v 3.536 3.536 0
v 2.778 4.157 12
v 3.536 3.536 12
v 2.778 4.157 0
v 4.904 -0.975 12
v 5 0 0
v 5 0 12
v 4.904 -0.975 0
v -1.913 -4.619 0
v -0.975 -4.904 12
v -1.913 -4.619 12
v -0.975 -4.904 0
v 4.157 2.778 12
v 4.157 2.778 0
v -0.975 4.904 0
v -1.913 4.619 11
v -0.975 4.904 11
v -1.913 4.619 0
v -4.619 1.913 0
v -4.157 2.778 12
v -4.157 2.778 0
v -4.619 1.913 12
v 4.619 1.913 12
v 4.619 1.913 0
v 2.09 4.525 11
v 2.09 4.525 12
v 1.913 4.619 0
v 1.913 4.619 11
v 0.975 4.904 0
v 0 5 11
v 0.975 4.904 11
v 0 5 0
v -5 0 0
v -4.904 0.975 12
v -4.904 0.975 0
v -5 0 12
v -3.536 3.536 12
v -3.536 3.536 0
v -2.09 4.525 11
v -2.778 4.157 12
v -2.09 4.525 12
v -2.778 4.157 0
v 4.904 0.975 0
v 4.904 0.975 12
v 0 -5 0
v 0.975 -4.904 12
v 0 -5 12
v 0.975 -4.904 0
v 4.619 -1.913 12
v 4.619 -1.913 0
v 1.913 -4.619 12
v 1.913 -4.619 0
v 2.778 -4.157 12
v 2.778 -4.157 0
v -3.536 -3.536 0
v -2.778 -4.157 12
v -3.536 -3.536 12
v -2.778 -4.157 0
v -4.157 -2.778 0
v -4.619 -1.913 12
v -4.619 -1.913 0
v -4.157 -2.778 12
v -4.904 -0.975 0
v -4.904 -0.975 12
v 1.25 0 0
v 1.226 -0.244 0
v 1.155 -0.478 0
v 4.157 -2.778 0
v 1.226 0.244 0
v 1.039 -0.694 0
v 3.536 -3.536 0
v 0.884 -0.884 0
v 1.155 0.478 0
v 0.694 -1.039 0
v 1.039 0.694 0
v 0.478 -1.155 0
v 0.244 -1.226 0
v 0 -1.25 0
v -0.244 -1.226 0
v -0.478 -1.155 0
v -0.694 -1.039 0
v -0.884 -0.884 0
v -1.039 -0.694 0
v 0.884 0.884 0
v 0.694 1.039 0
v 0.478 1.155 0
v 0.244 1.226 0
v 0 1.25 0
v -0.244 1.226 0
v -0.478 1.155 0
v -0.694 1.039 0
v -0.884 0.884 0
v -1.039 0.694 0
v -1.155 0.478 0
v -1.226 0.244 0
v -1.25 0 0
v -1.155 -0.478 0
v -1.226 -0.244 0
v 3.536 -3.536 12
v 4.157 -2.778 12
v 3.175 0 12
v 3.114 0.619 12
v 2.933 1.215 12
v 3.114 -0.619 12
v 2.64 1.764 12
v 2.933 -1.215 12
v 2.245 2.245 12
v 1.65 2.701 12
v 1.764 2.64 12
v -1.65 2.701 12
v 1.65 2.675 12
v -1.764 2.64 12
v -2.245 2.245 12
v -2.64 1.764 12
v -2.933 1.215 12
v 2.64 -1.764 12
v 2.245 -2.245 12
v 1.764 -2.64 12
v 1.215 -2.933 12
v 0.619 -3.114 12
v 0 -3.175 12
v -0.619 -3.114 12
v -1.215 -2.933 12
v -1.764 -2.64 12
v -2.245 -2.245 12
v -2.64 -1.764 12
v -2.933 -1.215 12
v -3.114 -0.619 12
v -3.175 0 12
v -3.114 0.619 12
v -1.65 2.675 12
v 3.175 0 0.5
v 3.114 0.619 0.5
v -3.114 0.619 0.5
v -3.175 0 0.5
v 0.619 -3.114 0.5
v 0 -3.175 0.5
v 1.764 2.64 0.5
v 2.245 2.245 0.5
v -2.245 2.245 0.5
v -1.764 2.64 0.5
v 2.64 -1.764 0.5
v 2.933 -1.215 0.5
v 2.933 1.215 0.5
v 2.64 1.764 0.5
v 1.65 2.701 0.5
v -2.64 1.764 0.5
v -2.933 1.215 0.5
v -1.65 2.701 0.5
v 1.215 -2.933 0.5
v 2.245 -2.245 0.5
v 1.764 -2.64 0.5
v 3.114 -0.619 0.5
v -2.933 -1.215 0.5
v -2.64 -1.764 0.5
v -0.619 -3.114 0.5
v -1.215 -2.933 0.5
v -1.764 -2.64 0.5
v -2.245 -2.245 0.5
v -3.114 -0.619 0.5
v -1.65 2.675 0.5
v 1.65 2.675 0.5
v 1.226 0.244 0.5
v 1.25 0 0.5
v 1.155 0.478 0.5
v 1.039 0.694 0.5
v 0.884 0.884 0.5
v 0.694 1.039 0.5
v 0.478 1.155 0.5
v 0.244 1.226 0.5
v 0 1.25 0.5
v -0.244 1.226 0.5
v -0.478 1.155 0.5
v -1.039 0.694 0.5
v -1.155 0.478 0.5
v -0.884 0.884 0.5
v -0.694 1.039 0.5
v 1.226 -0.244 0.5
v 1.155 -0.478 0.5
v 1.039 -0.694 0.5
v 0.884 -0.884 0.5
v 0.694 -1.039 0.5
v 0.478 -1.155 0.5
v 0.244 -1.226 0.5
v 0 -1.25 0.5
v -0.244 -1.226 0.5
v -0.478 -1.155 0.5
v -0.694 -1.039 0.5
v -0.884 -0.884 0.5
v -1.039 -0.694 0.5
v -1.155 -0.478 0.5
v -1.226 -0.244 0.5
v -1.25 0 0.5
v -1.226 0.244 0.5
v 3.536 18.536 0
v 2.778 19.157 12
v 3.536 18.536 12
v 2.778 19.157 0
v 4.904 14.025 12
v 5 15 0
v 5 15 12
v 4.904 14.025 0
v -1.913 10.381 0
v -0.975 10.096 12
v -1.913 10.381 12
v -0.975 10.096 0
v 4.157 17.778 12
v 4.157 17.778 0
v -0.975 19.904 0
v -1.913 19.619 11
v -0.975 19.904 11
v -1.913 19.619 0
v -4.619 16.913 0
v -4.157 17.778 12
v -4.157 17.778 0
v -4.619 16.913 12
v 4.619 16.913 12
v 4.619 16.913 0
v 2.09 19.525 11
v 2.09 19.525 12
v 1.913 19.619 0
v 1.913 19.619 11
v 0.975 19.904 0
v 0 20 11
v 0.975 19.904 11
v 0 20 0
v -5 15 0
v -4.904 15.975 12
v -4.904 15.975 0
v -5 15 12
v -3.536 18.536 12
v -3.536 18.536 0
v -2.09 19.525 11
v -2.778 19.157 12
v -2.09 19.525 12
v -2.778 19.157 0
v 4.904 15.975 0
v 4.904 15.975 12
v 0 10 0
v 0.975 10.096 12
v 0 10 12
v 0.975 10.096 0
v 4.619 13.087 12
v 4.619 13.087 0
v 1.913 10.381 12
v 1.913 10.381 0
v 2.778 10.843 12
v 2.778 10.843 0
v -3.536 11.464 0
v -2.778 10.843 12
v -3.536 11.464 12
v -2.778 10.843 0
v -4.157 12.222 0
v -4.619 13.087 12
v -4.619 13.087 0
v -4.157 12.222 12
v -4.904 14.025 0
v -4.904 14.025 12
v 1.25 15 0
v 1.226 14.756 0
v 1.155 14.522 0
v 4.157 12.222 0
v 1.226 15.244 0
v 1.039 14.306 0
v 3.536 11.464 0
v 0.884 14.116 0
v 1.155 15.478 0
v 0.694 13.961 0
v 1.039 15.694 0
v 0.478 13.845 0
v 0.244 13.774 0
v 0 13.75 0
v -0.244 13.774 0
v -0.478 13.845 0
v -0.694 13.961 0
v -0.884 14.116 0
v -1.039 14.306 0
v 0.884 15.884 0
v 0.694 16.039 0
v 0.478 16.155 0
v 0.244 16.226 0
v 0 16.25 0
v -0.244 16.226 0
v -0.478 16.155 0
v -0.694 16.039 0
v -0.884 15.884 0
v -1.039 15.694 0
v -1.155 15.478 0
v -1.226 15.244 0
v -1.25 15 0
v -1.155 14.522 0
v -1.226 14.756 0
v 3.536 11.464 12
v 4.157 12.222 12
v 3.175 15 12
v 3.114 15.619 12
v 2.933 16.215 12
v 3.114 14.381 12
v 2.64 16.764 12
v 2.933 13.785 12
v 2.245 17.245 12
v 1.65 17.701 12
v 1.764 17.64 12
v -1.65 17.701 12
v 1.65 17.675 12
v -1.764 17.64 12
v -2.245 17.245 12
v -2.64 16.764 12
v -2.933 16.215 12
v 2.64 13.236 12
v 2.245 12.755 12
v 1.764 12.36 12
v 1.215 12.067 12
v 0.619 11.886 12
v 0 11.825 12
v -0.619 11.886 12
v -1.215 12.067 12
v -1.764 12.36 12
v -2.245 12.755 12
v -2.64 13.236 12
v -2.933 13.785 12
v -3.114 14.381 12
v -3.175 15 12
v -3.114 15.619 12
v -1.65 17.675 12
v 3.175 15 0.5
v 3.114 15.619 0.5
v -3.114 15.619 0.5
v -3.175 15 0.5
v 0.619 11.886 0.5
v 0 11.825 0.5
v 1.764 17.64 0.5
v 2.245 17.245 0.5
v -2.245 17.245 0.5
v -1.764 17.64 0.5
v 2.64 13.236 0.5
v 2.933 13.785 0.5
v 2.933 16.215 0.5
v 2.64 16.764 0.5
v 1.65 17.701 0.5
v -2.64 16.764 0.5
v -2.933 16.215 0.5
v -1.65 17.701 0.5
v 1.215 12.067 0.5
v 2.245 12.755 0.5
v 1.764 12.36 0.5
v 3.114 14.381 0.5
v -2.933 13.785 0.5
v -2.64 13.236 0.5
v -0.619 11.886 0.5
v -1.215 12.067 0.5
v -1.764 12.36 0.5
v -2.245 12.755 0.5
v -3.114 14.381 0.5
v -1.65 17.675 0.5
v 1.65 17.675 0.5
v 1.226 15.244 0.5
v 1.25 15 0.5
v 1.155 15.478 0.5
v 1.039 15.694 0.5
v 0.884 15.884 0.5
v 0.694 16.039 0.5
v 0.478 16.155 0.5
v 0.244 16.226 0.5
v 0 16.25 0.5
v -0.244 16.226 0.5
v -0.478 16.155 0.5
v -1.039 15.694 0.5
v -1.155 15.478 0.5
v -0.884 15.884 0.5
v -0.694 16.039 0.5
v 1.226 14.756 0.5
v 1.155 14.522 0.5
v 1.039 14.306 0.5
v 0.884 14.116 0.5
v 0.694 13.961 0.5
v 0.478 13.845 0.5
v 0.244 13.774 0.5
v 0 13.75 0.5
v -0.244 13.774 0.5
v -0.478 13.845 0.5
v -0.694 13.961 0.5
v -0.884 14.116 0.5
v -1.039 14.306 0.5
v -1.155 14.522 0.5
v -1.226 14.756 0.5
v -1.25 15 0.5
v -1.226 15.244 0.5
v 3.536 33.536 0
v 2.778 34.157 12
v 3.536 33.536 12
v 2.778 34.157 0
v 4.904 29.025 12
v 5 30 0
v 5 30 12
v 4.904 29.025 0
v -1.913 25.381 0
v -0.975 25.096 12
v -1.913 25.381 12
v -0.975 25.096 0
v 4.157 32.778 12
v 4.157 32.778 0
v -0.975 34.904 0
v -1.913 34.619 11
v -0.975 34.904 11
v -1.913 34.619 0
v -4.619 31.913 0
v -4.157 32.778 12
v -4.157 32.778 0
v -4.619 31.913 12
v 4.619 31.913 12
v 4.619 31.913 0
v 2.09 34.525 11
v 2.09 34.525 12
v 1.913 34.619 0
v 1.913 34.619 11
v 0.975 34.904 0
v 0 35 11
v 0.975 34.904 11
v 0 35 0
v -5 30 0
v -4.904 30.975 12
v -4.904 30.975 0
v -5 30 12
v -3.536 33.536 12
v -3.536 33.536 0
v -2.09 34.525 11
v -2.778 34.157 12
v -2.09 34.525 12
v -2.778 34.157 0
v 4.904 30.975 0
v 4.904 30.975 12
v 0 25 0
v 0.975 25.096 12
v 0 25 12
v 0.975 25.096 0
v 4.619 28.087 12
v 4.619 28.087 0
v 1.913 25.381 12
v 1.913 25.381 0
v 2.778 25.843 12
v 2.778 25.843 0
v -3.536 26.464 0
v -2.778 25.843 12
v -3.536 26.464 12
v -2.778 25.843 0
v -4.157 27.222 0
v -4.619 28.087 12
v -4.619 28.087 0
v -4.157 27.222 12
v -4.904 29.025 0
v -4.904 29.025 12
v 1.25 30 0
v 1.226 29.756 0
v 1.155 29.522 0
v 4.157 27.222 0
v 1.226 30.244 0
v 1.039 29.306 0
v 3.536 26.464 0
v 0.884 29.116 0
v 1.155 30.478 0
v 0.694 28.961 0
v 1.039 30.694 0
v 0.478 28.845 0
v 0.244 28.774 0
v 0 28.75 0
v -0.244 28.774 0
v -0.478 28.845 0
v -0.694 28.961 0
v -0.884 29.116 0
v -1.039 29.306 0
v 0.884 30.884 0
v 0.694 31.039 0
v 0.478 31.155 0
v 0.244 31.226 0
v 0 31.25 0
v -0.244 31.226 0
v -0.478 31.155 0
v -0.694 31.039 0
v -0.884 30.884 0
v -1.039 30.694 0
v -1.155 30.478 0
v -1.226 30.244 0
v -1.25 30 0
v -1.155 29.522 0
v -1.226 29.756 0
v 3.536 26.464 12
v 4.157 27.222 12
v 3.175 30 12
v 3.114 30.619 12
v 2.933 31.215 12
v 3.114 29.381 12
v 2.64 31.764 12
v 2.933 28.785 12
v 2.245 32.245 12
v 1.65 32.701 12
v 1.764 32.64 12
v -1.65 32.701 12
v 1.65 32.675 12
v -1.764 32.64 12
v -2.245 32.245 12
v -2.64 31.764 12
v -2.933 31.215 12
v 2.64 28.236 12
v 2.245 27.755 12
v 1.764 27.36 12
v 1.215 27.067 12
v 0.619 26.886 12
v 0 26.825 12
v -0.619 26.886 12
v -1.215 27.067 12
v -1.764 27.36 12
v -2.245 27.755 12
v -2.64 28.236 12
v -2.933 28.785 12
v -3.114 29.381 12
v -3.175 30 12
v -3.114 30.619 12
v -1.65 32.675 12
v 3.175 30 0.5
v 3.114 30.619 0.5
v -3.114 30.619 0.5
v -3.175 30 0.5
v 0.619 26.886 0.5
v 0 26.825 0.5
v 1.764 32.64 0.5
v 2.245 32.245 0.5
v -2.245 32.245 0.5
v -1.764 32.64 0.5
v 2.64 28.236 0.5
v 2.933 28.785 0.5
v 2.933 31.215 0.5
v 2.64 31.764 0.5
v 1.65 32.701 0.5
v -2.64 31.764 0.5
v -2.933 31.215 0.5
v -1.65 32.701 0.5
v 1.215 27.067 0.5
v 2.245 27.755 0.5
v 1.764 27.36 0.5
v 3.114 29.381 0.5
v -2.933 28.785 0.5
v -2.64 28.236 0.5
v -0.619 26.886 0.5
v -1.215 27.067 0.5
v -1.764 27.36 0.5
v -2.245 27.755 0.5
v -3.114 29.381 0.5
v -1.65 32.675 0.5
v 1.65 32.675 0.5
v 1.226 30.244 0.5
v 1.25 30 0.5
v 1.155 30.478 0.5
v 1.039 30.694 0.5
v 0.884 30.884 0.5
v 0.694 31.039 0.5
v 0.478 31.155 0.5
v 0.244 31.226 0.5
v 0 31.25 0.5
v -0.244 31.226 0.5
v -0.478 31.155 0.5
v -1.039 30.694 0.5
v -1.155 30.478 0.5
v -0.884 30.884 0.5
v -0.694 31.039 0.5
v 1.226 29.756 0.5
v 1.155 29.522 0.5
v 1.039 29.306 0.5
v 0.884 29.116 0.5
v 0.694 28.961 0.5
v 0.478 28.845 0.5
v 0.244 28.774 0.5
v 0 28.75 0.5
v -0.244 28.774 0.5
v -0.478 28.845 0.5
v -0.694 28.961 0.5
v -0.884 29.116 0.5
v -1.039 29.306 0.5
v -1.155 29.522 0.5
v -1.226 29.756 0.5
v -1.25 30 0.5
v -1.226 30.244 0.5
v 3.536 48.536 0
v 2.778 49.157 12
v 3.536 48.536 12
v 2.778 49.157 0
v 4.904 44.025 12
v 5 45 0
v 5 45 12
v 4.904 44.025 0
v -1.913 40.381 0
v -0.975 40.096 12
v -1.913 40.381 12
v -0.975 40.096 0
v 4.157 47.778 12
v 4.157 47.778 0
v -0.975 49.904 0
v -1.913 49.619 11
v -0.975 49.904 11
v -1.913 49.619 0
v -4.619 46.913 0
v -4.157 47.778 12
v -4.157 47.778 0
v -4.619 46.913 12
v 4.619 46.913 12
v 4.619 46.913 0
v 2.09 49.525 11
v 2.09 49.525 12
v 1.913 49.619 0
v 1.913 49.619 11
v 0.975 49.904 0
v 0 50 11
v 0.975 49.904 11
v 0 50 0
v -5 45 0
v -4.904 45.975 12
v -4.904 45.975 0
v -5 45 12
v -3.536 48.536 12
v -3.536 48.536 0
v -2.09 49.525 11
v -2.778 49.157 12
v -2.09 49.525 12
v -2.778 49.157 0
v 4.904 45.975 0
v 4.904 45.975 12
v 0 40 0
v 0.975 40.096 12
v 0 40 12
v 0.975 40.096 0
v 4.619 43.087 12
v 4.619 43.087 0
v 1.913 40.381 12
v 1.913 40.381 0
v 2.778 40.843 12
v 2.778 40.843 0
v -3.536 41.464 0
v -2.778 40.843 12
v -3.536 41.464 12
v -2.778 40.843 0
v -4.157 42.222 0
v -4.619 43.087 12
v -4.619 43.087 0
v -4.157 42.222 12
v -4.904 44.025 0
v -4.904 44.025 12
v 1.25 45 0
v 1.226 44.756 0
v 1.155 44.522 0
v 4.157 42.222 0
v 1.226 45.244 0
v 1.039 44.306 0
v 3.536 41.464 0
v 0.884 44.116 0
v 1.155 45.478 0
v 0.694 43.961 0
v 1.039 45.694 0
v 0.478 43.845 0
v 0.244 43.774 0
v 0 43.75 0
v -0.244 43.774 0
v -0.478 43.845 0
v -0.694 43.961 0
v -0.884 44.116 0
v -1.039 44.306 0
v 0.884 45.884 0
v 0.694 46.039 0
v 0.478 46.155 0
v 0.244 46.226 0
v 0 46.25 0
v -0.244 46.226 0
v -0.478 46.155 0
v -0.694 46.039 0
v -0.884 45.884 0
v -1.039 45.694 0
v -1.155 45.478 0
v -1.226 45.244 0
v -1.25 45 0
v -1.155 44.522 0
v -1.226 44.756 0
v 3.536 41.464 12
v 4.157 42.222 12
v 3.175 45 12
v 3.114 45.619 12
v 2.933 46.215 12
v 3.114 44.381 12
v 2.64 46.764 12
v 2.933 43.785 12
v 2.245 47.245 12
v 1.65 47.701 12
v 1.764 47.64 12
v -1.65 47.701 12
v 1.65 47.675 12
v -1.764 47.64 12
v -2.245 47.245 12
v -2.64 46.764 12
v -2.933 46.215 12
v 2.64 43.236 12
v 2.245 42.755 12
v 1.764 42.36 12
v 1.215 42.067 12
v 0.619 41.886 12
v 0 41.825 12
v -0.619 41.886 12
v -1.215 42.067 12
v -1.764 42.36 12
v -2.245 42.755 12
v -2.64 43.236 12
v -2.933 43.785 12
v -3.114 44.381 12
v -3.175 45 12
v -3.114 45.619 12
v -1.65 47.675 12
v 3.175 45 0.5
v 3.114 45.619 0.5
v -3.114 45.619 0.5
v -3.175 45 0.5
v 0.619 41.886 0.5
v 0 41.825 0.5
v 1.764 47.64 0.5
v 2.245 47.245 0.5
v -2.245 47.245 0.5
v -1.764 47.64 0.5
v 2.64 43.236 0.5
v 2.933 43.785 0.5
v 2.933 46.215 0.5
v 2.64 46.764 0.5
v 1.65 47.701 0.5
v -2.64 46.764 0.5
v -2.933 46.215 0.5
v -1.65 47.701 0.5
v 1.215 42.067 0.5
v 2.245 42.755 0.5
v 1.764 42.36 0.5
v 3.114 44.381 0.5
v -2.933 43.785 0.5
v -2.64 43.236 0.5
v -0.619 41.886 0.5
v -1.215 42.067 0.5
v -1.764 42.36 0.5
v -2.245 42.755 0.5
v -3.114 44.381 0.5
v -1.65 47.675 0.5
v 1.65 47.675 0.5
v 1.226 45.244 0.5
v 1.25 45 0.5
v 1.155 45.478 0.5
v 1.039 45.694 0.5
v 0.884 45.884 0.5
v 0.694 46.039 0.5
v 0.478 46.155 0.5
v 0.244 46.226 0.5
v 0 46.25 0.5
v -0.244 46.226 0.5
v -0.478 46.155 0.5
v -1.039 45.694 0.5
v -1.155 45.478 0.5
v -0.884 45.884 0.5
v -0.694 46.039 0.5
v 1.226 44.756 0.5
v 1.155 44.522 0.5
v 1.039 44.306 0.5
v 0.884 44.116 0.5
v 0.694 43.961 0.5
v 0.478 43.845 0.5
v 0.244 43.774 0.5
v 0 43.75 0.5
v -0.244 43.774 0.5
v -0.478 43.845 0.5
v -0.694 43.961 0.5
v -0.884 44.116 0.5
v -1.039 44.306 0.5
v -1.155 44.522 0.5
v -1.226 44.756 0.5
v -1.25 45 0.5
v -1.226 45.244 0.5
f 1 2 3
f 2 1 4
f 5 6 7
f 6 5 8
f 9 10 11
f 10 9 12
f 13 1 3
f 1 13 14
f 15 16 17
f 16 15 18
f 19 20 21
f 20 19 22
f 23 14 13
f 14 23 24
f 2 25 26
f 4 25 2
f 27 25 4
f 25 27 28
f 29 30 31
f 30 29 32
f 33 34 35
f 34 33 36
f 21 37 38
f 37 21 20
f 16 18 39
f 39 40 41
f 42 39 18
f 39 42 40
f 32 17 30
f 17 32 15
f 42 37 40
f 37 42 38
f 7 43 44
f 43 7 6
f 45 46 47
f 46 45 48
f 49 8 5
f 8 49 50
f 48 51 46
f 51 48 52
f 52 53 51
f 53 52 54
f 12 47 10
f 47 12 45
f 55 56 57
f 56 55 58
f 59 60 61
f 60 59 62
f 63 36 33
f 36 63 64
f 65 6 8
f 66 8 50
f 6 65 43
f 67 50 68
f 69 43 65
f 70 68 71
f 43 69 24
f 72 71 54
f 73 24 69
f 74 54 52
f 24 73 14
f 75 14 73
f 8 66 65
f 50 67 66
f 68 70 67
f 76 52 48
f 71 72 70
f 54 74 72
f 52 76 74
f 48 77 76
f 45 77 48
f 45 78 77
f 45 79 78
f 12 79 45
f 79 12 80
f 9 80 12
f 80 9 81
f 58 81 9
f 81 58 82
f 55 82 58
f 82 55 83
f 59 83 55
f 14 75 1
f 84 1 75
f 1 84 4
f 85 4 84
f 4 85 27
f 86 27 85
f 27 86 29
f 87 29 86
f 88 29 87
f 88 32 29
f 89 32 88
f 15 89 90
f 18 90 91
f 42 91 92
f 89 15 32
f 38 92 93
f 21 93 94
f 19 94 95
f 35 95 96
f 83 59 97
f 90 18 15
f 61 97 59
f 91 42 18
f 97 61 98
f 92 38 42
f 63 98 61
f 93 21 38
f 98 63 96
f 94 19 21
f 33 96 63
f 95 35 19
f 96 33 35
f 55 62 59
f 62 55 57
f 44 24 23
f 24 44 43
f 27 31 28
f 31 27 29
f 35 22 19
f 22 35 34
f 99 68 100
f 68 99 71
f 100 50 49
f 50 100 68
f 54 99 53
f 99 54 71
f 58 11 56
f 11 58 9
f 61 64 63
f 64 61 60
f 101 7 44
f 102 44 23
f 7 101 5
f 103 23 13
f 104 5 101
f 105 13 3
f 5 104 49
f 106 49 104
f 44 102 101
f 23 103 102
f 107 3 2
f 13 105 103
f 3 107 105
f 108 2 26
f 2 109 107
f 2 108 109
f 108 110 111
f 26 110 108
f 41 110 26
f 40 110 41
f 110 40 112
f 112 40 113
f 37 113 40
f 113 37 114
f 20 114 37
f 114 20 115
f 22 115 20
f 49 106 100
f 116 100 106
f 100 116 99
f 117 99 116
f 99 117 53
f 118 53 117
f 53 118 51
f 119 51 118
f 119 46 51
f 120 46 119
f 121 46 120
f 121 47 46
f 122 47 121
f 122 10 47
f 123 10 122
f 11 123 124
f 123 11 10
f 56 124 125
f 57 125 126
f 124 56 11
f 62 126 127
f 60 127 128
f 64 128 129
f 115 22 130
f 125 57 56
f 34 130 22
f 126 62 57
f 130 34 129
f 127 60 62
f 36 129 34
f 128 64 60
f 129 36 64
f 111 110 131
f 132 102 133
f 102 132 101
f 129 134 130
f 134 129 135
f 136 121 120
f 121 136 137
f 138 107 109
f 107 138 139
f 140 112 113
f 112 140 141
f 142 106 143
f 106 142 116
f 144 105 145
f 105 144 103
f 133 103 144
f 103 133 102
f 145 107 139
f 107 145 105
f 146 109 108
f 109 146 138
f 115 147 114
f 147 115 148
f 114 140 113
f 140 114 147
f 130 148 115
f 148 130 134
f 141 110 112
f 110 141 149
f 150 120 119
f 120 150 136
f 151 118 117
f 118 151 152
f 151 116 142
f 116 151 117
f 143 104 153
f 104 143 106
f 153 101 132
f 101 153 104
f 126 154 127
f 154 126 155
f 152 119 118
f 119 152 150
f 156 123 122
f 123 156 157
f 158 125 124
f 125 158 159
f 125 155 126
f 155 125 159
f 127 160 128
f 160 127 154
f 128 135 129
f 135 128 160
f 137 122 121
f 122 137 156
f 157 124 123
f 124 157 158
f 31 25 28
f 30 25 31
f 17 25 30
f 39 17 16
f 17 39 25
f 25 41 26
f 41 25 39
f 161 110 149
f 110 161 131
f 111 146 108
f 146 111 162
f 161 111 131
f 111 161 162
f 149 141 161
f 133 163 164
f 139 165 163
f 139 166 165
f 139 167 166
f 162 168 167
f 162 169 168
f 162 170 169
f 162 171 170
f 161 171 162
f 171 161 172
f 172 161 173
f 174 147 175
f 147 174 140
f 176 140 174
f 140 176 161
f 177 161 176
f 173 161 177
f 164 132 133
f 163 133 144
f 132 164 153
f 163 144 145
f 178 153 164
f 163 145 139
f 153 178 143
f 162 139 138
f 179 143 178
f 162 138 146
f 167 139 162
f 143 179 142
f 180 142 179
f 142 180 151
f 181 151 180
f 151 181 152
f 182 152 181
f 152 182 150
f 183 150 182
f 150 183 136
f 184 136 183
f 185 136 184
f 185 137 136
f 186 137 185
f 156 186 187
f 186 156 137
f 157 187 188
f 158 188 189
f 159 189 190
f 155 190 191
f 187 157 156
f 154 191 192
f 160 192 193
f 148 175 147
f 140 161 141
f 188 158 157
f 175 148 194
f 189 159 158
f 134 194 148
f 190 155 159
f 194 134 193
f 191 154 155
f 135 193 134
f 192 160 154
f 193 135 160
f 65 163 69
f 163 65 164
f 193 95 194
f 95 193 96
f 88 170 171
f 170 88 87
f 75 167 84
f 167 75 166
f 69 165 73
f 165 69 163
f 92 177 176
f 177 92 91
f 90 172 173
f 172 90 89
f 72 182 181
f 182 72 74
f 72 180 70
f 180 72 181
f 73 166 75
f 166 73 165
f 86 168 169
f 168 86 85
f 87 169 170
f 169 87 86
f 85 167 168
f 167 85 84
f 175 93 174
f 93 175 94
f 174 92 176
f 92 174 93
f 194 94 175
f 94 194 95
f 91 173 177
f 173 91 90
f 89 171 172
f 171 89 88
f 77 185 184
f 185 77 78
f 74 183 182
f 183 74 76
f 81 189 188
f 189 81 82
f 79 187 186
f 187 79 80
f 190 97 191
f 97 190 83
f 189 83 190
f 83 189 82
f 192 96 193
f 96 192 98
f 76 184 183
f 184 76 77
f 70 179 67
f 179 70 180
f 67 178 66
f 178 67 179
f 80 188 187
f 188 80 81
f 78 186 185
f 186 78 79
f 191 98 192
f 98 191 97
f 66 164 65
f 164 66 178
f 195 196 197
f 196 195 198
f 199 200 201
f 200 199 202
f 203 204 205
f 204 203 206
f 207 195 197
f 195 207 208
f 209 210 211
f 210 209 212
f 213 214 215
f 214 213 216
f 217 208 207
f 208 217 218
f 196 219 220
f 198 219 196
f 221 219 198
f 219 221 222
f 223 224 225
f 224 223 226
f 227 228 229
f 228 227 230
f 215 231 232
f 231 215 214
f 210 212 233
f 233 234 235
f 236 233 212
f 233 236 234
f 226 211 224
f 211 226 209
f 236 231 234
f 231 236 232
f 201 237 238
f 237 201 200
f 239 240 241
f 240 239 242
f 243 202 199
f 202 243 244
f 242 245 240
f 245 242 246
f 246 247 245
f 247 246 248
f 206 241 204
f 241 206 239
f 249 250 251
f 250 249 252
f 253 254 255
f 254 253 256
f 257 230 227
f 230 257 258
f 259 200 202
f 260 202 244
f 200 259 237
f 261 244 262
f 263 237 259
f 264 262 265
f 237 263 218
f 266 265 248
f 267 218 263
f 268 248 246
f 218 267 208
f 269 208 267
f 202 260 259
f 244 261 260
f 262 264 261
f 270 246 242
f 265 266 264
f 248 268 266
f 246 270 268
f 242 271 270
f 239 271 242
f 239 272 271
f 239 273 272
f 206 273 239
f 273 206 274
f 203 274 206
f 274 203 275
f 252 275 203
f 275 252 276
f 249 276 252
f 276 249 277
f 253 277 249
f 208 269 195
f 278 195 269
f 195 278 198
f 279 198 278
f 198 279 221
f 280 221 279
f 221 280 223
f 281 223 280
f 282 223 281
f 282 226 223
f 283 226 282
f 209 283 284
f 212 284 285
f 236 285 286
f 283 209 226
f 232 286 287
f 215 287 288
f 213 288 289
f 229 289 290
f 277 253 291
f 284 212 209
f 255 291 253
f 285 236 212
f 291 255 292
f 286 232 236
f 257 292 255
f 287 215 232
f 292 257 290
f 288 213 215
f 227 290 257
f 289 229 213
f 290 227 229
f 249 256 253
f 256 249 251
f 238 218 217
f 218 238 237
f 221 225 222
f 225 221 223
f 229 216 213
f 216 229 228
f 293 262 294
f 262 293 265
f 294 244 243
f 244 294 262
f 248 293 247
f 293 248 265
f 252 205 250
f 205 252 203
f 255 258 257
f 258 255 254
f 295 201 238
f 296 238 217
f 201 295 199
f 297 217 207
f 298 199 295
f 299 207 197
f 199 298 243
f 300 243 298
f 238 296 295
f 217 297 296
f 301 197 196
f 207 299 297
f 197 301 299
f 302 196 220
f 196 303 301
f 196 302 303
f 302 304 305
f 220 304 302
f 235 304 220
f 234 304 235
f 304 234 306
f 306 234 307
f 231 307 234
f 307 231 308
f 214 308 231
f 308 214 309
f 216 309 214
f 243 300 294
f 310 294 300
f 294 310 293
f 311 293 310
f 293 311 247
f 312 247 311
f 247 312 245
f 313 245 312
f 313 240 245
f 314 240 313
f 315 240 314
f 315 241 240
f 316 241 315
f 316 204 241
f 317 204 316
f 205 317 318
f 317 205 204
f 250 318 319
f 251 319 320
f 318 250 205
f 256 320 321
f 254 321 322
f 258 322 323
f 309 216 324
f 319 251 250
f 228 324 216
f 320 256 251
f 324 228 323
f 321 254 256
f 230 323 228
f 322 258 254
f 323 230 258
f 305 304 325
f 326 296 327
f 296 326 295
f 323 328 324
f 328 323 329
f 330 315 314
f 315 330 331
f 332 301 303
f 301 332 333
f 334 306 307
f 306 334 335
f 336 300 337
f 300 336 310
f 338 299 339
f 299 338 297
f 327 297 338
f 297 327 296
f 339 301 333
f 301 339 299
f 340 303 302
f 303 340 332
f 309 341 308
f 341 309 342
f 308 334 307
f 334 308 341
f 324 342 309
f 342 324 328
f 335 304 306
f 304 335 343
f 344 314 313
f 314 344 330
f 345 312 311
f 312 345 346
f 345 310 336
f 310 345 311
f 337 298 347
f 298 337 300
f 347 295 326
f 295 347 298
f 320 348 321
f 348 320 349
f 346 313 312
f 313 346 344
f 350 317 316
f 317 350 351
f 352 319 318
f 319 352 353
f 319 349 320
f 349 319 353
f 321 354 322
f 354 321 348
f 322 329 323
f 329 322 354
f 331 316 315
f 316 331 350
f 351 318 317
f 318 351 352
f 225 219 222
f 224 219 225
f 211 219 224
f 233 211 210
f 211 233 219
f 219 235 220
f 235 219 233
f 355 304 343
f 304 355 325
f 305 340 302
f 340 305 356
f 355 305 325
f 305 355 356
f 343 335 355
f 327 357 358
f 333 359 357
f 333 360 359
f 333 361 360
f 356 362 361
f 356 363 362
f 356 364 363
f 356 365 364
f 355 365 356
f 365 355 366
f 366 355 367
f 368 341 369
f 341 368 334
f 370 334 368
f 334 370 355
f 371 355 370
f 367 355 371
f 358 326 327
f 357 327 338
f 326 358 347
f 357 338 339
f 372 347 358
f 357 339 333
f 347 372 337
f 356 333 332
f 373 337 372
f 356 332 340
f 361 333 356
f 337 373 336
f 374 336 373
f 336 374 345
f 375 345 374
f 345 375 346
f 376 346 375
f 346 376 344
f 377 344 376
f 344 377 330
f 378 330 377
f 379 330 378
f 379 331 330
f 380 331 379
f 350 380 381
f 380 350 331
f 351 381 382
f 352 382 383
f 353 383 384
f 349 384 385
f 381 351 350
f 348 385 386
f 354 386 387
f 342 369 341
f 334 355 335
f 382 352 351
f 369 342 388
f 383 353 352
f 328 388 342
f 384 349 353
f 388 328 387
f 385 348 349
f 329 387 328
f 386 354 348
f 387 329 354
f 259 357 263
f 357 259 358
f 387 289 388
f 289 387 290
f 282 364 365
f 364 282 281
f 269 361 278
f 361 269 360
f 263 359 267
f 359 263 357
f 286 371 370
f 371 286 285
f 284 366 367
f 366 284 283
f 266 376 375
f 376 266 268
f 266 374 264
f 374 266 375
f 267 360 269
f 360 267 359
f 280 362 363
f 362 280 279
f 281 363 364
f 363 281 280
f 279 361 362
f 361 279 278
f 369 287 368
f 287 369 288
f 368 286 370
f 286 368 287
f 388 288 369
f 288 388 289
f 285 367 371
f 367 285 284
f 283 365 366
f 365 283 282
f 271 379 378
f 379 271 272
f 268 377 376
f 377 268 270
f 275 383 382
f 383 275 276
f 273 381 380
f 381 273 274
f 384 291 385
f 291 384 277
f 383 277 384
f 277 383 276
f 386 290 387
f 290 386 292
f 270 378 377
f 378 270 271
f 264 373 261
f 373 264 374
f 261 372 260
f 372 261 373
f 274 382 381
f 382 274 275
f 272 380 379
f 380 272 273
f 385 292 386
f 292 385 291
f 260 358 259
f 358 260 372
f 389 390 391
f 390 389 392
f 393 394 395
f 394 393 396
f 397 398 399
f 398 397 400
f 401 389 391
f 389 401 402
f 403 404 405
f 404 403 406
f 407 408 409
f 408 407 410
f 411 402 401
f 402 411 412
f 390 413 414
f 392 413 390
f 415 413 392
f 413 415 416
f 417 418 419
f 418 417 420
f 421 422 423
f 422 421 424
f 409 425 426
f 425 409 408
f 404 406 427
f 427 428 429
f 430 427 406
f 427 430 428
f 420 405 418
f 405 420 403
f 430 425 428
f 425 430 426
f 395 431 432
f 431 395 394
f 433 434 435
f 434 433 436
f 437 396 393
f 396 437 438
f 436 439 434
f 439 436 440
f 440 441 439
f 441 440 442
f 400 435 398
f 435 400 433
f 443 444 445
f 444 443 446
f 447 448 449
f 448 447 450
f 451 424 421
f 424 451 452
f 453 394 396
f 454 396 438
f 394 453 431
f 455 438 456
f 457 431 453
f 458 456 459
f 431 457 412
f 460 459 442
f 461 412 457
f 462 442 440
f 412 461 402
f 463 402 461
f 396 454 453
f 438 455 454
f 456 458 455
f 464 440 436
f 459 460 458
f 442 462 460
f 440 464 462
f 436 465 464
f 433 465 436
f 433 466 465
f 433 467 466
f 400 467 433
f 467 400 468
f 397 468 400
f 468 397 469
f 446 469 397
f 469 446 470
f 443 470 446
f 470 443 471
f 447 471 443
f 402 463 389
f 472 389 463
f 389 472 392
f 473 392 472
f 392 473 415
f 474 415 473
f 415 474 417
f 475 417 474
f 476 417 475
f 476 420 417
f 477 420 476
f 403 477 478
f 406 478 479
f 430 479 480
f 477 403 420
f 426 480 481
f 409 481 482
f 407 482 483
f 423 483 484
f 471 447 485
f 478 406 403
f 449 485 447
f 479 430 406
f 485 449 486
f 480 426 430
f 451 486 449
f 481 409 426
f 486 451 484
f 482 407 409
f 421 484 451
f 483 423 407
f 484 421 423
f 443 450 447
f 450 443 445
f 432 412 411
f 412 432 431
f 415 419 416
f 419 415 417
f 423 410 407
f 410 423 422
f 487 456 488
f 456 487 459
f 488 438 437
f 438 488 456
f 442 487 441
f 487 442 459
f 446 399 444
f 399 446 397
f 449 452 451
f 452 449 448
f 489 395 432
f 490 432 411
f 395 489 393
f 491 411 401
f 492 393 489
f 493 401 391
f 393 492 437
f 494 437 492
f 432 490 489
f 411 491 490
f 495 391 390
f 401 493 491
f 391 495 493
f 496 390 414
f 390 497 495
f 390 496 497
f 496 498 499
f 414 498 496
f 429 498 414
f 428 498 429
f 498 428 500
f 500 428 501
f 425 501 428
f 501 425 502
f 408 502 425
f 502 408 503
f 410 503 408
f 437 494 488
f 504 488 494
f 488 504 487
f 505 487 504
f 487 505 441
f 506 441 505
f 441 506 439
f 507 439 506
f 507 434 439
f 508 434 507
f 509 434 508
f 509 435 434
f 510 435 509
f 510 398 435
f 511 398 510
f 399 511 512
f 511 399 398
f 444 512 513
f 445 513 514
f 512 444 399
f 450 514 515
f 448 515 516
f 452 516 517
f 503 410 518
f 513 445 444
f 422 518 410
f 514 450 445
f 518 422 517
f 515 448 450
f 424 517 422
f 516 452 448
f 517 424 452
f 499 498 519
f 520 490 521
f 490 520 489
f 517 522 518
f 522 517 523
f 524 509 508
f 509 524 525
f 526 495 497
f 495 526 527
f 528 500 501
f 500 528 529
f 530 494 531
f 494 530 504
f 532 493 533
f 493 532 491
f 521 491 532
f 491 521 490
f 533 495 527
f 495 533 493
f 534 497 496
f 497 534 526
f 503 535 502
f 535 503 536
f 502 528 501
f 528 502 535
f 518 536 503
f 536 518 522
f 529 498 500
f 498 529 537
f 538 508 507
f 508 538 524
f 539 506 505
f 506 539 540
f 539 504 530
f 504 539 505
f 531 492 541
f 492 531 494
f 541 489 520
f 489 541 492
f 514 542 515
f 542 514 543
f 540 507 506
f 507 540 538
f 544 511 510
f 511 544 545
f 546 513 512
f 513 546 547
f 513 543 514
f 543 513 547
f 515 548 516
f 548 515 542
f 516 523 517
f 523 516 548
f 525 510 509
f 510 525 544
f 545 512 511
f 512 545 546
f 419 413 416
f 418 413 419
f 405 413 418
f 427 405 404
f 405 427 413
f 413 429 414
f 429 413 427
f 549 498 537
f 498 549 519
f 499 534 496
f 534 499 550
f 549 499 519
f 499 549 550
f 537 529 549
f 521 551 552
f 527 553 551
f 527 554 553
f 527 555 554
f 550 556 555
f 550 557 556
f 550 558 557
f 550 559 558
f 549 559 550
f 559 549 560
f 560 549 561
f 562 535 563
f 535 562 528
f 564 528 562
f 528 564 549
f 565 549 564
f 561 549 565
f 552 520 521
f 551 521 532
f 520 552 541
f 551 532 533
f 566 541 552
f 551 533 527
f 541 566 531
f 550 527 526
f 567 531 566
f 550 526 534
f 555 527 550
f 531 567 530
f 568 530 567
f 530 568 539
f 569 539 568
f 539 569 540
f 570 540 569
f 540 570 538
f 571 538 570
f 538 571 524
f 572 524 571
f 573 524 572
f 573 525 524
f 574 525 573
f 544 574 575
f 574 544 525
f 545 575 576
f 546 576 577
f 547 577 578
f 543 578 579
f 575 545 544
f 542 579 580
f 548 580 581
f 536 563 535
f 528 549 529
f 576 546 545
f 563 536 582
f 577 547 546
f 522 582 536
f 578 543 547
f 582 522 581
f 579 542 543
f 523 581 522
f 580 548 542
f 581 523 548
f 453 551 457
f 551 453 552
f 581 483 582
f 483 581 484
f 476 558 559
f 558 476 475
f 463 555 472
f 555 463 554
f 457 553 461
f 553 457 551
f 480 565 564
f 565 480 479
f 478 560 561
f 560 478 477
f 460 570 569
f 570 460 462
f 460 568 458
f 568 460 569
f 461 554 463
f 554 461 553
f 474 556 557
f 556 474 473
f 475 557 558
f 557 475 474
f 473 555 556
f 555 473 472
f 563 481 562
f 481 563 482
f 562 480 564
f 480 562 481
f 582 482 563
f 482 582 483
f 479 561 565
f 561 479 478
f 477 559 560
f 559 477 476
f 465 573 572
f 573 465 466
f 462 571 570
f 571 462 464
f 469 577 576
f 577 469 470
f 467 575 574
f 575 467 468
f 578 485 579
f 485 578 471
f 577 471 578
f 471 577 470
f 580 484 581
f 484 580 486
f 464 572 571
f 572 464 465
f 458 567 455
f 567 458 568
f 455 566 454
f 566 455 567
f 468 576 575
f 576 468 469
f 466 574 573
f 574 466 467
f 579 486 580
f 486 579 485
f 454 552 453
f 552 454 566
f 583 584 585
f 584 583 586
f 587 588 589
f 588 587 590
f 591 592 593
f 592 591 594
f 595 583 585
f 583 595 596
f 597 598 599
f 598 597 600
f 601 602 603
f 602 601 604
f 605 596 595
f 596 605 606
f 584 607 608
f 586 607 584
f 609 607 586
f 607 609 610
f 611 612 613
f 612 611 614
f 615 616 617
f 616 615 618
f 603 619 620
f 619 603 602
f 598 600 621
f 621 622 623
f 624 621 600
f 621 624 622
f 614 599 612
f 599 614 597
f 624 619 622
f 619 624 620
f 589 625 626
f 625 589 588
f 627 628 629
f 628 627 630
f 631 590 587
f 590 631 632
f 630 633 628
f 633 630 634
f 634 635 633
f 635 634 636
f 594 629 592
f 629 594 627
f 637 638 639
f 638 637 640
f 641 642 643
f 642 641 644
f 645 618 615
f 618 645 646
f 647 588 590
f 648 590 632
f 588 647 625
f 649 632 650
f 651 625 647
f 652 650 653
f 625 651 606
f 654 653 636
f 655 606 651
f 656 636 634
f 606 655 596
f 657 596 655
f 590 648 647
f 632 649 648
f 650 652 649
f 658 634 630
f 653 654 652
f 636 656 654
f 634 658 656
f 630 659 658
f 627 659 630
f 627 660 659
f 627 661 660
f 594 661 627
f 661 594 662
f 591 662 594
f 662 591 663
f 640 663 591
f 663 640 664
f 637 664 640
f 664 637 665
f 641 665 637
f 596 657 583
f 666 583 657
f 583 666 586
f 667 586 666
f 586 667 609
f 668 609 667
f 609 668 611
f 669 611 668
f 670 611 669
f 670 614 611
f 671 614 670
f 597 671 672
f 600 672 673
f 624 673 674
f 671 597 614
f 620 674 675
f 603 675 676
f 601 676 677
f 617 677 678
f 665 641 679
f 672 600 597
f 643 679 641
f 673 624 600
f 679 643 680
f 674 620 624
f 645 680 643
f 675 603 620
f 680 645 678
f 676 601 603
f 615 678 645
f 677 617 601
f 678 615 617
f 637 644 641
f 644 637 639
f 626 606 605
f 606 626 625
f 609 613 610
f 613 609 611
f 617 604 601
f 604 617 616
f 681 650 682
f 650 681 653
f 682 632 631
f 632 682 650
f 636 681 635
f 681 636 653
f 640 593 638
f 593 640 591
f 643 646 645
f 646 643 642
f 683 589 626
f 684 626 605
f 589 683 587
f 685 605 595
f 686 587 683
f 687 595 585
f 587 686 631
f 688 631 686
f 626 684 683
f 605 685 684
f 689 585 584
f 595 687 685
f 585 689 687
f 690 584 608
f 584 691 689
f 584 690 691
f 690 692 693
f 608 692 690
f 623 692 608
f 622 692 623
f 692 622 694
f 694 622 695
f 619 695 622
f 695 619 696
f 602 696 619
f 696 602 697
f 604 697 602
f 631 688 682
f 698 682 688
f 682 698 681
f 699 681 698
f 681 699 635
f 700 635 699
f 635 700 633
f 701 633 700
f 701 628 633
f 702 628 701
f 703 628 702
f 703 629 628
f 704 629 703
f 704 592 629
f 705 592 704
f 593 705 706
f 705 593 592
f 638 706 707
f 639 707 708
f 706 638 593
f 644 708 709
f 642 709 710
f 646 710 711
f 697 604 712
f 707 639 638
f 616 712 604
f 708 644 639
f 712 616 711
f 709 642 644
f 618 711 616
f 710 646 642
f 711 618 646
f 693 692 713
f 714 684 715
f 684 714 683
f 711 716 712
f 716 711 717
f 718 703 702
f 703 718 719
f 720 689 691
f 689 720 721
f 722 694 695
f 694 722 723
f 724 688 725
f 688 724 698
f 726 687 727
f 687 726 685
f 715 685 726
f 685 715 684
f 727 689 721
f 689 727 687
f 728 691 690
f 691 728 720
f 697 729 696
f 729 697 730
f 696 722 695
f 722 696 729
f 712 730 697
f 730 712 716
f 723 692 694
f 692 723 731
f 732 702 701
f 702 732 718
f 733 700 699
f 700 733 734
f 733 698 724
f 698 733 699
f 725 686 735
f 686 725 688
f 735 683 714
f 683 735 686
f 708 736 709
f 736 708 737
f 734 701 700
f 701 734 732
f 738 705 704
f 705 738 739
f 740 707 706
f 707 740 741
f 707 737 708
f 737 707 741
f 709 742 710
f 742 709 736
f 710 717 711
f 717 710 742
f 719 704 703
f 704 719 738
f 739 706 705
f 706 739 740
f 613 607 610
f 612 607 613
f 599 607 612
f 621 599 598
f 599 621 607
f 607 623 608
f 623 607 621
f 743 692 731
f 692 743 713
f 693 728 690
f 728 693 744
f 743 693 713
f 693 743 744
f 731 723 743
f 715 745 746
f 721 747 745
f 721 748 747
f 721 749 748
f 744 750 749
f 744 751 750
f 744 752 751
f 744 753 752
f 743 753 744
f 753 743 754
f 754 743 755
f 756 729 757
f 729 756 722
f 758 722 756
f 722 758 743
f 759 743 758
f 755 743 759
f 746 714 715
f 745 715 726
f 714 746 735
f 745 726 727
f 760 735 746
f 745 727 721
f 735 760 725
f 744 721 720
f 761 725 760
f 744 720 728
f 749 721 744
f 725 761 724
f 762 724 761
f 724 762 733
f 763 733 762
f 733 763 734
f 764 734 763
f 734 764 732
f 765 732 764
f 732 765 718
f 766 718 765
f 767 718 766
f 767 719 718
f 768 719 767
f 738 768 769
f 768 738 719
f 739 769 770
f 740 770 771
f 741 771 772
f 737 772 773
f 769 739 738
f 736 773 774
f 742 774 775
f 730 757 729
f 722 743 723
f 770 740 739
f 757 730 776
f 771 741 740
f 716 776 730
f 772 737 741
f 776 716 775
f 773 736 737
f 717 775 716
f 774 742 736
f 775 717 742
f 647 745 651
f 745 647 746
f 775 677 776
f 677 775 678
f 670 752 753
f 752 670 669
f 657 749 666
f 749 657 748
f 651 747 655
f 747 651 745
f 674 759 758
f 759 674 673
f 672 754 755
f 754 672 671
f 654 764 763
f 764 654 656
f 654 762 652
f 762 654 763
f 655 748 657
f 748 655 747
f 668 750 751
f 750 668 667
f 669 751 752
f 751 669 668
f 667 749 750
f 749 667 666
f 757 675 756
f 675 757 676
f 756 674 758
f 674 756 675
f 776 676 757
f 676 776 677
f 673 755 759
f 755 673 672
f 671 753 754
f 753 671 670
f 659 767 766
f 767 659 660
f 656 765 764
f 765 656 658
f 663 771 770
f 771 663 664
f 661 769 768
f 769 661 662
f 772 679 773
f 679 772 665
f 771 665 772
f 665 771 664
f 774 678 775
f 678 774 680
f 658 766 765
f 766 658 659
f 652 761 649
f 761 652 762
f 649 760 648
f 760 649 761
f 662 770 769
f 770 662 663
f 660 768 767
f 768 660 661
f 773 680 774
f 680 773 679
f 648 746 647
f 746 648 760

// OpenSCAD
/*
    Proxymow Mower - Shaft Coupler
    10mm Diameter Half Closed Coupler Insert, Holeless
    Push fit pair into aluminium tube - 10mm ID, 14mm OD
    Then drill and tap for grub screw through flat
    Print in PETG
*/
shaft_length = 12;
outer_dia = 10.0;
inner_dia = 6.35;
key_width = 3.3;
key_thickness = 1.0;
key_offset = 0.5;
air_hole_dia = 2.5;

module coupler() {
    

    difference() {
        union() {
            //10mm tight fit shaft
            cylinder(shaft_length, d=outer_dia, $fn=32);
        }

        //hole
        translate([0,0,-1]) cylinder(shaft_length + 2, d=inner_dia, $fn=32);

        //marker
        translate([0, inner_dia*1.5,shaft_length+4]) cube(10, center=true);
    }
    difference() {

        union() {
            //key - 0.5mm from edge
            translate([0,inner_dia/2 + key_thickness/2 - key_offset,shaft_length/2]) cube([key_width, key_thickness, shaft_length], center=true);
        //end stop
        cylinder(0.5, d=outer_dia, $fn=32);
        }

        //air hole
        translate([0,0,-1]) cylinder(h=shaft_length, d=2.5, $fn=32);
    }
}

coupler();
translate([0, 15, 0]) coupler();
translate([0, 30, 0]) coupler();
translate([0, 45, 0]) coupler();
